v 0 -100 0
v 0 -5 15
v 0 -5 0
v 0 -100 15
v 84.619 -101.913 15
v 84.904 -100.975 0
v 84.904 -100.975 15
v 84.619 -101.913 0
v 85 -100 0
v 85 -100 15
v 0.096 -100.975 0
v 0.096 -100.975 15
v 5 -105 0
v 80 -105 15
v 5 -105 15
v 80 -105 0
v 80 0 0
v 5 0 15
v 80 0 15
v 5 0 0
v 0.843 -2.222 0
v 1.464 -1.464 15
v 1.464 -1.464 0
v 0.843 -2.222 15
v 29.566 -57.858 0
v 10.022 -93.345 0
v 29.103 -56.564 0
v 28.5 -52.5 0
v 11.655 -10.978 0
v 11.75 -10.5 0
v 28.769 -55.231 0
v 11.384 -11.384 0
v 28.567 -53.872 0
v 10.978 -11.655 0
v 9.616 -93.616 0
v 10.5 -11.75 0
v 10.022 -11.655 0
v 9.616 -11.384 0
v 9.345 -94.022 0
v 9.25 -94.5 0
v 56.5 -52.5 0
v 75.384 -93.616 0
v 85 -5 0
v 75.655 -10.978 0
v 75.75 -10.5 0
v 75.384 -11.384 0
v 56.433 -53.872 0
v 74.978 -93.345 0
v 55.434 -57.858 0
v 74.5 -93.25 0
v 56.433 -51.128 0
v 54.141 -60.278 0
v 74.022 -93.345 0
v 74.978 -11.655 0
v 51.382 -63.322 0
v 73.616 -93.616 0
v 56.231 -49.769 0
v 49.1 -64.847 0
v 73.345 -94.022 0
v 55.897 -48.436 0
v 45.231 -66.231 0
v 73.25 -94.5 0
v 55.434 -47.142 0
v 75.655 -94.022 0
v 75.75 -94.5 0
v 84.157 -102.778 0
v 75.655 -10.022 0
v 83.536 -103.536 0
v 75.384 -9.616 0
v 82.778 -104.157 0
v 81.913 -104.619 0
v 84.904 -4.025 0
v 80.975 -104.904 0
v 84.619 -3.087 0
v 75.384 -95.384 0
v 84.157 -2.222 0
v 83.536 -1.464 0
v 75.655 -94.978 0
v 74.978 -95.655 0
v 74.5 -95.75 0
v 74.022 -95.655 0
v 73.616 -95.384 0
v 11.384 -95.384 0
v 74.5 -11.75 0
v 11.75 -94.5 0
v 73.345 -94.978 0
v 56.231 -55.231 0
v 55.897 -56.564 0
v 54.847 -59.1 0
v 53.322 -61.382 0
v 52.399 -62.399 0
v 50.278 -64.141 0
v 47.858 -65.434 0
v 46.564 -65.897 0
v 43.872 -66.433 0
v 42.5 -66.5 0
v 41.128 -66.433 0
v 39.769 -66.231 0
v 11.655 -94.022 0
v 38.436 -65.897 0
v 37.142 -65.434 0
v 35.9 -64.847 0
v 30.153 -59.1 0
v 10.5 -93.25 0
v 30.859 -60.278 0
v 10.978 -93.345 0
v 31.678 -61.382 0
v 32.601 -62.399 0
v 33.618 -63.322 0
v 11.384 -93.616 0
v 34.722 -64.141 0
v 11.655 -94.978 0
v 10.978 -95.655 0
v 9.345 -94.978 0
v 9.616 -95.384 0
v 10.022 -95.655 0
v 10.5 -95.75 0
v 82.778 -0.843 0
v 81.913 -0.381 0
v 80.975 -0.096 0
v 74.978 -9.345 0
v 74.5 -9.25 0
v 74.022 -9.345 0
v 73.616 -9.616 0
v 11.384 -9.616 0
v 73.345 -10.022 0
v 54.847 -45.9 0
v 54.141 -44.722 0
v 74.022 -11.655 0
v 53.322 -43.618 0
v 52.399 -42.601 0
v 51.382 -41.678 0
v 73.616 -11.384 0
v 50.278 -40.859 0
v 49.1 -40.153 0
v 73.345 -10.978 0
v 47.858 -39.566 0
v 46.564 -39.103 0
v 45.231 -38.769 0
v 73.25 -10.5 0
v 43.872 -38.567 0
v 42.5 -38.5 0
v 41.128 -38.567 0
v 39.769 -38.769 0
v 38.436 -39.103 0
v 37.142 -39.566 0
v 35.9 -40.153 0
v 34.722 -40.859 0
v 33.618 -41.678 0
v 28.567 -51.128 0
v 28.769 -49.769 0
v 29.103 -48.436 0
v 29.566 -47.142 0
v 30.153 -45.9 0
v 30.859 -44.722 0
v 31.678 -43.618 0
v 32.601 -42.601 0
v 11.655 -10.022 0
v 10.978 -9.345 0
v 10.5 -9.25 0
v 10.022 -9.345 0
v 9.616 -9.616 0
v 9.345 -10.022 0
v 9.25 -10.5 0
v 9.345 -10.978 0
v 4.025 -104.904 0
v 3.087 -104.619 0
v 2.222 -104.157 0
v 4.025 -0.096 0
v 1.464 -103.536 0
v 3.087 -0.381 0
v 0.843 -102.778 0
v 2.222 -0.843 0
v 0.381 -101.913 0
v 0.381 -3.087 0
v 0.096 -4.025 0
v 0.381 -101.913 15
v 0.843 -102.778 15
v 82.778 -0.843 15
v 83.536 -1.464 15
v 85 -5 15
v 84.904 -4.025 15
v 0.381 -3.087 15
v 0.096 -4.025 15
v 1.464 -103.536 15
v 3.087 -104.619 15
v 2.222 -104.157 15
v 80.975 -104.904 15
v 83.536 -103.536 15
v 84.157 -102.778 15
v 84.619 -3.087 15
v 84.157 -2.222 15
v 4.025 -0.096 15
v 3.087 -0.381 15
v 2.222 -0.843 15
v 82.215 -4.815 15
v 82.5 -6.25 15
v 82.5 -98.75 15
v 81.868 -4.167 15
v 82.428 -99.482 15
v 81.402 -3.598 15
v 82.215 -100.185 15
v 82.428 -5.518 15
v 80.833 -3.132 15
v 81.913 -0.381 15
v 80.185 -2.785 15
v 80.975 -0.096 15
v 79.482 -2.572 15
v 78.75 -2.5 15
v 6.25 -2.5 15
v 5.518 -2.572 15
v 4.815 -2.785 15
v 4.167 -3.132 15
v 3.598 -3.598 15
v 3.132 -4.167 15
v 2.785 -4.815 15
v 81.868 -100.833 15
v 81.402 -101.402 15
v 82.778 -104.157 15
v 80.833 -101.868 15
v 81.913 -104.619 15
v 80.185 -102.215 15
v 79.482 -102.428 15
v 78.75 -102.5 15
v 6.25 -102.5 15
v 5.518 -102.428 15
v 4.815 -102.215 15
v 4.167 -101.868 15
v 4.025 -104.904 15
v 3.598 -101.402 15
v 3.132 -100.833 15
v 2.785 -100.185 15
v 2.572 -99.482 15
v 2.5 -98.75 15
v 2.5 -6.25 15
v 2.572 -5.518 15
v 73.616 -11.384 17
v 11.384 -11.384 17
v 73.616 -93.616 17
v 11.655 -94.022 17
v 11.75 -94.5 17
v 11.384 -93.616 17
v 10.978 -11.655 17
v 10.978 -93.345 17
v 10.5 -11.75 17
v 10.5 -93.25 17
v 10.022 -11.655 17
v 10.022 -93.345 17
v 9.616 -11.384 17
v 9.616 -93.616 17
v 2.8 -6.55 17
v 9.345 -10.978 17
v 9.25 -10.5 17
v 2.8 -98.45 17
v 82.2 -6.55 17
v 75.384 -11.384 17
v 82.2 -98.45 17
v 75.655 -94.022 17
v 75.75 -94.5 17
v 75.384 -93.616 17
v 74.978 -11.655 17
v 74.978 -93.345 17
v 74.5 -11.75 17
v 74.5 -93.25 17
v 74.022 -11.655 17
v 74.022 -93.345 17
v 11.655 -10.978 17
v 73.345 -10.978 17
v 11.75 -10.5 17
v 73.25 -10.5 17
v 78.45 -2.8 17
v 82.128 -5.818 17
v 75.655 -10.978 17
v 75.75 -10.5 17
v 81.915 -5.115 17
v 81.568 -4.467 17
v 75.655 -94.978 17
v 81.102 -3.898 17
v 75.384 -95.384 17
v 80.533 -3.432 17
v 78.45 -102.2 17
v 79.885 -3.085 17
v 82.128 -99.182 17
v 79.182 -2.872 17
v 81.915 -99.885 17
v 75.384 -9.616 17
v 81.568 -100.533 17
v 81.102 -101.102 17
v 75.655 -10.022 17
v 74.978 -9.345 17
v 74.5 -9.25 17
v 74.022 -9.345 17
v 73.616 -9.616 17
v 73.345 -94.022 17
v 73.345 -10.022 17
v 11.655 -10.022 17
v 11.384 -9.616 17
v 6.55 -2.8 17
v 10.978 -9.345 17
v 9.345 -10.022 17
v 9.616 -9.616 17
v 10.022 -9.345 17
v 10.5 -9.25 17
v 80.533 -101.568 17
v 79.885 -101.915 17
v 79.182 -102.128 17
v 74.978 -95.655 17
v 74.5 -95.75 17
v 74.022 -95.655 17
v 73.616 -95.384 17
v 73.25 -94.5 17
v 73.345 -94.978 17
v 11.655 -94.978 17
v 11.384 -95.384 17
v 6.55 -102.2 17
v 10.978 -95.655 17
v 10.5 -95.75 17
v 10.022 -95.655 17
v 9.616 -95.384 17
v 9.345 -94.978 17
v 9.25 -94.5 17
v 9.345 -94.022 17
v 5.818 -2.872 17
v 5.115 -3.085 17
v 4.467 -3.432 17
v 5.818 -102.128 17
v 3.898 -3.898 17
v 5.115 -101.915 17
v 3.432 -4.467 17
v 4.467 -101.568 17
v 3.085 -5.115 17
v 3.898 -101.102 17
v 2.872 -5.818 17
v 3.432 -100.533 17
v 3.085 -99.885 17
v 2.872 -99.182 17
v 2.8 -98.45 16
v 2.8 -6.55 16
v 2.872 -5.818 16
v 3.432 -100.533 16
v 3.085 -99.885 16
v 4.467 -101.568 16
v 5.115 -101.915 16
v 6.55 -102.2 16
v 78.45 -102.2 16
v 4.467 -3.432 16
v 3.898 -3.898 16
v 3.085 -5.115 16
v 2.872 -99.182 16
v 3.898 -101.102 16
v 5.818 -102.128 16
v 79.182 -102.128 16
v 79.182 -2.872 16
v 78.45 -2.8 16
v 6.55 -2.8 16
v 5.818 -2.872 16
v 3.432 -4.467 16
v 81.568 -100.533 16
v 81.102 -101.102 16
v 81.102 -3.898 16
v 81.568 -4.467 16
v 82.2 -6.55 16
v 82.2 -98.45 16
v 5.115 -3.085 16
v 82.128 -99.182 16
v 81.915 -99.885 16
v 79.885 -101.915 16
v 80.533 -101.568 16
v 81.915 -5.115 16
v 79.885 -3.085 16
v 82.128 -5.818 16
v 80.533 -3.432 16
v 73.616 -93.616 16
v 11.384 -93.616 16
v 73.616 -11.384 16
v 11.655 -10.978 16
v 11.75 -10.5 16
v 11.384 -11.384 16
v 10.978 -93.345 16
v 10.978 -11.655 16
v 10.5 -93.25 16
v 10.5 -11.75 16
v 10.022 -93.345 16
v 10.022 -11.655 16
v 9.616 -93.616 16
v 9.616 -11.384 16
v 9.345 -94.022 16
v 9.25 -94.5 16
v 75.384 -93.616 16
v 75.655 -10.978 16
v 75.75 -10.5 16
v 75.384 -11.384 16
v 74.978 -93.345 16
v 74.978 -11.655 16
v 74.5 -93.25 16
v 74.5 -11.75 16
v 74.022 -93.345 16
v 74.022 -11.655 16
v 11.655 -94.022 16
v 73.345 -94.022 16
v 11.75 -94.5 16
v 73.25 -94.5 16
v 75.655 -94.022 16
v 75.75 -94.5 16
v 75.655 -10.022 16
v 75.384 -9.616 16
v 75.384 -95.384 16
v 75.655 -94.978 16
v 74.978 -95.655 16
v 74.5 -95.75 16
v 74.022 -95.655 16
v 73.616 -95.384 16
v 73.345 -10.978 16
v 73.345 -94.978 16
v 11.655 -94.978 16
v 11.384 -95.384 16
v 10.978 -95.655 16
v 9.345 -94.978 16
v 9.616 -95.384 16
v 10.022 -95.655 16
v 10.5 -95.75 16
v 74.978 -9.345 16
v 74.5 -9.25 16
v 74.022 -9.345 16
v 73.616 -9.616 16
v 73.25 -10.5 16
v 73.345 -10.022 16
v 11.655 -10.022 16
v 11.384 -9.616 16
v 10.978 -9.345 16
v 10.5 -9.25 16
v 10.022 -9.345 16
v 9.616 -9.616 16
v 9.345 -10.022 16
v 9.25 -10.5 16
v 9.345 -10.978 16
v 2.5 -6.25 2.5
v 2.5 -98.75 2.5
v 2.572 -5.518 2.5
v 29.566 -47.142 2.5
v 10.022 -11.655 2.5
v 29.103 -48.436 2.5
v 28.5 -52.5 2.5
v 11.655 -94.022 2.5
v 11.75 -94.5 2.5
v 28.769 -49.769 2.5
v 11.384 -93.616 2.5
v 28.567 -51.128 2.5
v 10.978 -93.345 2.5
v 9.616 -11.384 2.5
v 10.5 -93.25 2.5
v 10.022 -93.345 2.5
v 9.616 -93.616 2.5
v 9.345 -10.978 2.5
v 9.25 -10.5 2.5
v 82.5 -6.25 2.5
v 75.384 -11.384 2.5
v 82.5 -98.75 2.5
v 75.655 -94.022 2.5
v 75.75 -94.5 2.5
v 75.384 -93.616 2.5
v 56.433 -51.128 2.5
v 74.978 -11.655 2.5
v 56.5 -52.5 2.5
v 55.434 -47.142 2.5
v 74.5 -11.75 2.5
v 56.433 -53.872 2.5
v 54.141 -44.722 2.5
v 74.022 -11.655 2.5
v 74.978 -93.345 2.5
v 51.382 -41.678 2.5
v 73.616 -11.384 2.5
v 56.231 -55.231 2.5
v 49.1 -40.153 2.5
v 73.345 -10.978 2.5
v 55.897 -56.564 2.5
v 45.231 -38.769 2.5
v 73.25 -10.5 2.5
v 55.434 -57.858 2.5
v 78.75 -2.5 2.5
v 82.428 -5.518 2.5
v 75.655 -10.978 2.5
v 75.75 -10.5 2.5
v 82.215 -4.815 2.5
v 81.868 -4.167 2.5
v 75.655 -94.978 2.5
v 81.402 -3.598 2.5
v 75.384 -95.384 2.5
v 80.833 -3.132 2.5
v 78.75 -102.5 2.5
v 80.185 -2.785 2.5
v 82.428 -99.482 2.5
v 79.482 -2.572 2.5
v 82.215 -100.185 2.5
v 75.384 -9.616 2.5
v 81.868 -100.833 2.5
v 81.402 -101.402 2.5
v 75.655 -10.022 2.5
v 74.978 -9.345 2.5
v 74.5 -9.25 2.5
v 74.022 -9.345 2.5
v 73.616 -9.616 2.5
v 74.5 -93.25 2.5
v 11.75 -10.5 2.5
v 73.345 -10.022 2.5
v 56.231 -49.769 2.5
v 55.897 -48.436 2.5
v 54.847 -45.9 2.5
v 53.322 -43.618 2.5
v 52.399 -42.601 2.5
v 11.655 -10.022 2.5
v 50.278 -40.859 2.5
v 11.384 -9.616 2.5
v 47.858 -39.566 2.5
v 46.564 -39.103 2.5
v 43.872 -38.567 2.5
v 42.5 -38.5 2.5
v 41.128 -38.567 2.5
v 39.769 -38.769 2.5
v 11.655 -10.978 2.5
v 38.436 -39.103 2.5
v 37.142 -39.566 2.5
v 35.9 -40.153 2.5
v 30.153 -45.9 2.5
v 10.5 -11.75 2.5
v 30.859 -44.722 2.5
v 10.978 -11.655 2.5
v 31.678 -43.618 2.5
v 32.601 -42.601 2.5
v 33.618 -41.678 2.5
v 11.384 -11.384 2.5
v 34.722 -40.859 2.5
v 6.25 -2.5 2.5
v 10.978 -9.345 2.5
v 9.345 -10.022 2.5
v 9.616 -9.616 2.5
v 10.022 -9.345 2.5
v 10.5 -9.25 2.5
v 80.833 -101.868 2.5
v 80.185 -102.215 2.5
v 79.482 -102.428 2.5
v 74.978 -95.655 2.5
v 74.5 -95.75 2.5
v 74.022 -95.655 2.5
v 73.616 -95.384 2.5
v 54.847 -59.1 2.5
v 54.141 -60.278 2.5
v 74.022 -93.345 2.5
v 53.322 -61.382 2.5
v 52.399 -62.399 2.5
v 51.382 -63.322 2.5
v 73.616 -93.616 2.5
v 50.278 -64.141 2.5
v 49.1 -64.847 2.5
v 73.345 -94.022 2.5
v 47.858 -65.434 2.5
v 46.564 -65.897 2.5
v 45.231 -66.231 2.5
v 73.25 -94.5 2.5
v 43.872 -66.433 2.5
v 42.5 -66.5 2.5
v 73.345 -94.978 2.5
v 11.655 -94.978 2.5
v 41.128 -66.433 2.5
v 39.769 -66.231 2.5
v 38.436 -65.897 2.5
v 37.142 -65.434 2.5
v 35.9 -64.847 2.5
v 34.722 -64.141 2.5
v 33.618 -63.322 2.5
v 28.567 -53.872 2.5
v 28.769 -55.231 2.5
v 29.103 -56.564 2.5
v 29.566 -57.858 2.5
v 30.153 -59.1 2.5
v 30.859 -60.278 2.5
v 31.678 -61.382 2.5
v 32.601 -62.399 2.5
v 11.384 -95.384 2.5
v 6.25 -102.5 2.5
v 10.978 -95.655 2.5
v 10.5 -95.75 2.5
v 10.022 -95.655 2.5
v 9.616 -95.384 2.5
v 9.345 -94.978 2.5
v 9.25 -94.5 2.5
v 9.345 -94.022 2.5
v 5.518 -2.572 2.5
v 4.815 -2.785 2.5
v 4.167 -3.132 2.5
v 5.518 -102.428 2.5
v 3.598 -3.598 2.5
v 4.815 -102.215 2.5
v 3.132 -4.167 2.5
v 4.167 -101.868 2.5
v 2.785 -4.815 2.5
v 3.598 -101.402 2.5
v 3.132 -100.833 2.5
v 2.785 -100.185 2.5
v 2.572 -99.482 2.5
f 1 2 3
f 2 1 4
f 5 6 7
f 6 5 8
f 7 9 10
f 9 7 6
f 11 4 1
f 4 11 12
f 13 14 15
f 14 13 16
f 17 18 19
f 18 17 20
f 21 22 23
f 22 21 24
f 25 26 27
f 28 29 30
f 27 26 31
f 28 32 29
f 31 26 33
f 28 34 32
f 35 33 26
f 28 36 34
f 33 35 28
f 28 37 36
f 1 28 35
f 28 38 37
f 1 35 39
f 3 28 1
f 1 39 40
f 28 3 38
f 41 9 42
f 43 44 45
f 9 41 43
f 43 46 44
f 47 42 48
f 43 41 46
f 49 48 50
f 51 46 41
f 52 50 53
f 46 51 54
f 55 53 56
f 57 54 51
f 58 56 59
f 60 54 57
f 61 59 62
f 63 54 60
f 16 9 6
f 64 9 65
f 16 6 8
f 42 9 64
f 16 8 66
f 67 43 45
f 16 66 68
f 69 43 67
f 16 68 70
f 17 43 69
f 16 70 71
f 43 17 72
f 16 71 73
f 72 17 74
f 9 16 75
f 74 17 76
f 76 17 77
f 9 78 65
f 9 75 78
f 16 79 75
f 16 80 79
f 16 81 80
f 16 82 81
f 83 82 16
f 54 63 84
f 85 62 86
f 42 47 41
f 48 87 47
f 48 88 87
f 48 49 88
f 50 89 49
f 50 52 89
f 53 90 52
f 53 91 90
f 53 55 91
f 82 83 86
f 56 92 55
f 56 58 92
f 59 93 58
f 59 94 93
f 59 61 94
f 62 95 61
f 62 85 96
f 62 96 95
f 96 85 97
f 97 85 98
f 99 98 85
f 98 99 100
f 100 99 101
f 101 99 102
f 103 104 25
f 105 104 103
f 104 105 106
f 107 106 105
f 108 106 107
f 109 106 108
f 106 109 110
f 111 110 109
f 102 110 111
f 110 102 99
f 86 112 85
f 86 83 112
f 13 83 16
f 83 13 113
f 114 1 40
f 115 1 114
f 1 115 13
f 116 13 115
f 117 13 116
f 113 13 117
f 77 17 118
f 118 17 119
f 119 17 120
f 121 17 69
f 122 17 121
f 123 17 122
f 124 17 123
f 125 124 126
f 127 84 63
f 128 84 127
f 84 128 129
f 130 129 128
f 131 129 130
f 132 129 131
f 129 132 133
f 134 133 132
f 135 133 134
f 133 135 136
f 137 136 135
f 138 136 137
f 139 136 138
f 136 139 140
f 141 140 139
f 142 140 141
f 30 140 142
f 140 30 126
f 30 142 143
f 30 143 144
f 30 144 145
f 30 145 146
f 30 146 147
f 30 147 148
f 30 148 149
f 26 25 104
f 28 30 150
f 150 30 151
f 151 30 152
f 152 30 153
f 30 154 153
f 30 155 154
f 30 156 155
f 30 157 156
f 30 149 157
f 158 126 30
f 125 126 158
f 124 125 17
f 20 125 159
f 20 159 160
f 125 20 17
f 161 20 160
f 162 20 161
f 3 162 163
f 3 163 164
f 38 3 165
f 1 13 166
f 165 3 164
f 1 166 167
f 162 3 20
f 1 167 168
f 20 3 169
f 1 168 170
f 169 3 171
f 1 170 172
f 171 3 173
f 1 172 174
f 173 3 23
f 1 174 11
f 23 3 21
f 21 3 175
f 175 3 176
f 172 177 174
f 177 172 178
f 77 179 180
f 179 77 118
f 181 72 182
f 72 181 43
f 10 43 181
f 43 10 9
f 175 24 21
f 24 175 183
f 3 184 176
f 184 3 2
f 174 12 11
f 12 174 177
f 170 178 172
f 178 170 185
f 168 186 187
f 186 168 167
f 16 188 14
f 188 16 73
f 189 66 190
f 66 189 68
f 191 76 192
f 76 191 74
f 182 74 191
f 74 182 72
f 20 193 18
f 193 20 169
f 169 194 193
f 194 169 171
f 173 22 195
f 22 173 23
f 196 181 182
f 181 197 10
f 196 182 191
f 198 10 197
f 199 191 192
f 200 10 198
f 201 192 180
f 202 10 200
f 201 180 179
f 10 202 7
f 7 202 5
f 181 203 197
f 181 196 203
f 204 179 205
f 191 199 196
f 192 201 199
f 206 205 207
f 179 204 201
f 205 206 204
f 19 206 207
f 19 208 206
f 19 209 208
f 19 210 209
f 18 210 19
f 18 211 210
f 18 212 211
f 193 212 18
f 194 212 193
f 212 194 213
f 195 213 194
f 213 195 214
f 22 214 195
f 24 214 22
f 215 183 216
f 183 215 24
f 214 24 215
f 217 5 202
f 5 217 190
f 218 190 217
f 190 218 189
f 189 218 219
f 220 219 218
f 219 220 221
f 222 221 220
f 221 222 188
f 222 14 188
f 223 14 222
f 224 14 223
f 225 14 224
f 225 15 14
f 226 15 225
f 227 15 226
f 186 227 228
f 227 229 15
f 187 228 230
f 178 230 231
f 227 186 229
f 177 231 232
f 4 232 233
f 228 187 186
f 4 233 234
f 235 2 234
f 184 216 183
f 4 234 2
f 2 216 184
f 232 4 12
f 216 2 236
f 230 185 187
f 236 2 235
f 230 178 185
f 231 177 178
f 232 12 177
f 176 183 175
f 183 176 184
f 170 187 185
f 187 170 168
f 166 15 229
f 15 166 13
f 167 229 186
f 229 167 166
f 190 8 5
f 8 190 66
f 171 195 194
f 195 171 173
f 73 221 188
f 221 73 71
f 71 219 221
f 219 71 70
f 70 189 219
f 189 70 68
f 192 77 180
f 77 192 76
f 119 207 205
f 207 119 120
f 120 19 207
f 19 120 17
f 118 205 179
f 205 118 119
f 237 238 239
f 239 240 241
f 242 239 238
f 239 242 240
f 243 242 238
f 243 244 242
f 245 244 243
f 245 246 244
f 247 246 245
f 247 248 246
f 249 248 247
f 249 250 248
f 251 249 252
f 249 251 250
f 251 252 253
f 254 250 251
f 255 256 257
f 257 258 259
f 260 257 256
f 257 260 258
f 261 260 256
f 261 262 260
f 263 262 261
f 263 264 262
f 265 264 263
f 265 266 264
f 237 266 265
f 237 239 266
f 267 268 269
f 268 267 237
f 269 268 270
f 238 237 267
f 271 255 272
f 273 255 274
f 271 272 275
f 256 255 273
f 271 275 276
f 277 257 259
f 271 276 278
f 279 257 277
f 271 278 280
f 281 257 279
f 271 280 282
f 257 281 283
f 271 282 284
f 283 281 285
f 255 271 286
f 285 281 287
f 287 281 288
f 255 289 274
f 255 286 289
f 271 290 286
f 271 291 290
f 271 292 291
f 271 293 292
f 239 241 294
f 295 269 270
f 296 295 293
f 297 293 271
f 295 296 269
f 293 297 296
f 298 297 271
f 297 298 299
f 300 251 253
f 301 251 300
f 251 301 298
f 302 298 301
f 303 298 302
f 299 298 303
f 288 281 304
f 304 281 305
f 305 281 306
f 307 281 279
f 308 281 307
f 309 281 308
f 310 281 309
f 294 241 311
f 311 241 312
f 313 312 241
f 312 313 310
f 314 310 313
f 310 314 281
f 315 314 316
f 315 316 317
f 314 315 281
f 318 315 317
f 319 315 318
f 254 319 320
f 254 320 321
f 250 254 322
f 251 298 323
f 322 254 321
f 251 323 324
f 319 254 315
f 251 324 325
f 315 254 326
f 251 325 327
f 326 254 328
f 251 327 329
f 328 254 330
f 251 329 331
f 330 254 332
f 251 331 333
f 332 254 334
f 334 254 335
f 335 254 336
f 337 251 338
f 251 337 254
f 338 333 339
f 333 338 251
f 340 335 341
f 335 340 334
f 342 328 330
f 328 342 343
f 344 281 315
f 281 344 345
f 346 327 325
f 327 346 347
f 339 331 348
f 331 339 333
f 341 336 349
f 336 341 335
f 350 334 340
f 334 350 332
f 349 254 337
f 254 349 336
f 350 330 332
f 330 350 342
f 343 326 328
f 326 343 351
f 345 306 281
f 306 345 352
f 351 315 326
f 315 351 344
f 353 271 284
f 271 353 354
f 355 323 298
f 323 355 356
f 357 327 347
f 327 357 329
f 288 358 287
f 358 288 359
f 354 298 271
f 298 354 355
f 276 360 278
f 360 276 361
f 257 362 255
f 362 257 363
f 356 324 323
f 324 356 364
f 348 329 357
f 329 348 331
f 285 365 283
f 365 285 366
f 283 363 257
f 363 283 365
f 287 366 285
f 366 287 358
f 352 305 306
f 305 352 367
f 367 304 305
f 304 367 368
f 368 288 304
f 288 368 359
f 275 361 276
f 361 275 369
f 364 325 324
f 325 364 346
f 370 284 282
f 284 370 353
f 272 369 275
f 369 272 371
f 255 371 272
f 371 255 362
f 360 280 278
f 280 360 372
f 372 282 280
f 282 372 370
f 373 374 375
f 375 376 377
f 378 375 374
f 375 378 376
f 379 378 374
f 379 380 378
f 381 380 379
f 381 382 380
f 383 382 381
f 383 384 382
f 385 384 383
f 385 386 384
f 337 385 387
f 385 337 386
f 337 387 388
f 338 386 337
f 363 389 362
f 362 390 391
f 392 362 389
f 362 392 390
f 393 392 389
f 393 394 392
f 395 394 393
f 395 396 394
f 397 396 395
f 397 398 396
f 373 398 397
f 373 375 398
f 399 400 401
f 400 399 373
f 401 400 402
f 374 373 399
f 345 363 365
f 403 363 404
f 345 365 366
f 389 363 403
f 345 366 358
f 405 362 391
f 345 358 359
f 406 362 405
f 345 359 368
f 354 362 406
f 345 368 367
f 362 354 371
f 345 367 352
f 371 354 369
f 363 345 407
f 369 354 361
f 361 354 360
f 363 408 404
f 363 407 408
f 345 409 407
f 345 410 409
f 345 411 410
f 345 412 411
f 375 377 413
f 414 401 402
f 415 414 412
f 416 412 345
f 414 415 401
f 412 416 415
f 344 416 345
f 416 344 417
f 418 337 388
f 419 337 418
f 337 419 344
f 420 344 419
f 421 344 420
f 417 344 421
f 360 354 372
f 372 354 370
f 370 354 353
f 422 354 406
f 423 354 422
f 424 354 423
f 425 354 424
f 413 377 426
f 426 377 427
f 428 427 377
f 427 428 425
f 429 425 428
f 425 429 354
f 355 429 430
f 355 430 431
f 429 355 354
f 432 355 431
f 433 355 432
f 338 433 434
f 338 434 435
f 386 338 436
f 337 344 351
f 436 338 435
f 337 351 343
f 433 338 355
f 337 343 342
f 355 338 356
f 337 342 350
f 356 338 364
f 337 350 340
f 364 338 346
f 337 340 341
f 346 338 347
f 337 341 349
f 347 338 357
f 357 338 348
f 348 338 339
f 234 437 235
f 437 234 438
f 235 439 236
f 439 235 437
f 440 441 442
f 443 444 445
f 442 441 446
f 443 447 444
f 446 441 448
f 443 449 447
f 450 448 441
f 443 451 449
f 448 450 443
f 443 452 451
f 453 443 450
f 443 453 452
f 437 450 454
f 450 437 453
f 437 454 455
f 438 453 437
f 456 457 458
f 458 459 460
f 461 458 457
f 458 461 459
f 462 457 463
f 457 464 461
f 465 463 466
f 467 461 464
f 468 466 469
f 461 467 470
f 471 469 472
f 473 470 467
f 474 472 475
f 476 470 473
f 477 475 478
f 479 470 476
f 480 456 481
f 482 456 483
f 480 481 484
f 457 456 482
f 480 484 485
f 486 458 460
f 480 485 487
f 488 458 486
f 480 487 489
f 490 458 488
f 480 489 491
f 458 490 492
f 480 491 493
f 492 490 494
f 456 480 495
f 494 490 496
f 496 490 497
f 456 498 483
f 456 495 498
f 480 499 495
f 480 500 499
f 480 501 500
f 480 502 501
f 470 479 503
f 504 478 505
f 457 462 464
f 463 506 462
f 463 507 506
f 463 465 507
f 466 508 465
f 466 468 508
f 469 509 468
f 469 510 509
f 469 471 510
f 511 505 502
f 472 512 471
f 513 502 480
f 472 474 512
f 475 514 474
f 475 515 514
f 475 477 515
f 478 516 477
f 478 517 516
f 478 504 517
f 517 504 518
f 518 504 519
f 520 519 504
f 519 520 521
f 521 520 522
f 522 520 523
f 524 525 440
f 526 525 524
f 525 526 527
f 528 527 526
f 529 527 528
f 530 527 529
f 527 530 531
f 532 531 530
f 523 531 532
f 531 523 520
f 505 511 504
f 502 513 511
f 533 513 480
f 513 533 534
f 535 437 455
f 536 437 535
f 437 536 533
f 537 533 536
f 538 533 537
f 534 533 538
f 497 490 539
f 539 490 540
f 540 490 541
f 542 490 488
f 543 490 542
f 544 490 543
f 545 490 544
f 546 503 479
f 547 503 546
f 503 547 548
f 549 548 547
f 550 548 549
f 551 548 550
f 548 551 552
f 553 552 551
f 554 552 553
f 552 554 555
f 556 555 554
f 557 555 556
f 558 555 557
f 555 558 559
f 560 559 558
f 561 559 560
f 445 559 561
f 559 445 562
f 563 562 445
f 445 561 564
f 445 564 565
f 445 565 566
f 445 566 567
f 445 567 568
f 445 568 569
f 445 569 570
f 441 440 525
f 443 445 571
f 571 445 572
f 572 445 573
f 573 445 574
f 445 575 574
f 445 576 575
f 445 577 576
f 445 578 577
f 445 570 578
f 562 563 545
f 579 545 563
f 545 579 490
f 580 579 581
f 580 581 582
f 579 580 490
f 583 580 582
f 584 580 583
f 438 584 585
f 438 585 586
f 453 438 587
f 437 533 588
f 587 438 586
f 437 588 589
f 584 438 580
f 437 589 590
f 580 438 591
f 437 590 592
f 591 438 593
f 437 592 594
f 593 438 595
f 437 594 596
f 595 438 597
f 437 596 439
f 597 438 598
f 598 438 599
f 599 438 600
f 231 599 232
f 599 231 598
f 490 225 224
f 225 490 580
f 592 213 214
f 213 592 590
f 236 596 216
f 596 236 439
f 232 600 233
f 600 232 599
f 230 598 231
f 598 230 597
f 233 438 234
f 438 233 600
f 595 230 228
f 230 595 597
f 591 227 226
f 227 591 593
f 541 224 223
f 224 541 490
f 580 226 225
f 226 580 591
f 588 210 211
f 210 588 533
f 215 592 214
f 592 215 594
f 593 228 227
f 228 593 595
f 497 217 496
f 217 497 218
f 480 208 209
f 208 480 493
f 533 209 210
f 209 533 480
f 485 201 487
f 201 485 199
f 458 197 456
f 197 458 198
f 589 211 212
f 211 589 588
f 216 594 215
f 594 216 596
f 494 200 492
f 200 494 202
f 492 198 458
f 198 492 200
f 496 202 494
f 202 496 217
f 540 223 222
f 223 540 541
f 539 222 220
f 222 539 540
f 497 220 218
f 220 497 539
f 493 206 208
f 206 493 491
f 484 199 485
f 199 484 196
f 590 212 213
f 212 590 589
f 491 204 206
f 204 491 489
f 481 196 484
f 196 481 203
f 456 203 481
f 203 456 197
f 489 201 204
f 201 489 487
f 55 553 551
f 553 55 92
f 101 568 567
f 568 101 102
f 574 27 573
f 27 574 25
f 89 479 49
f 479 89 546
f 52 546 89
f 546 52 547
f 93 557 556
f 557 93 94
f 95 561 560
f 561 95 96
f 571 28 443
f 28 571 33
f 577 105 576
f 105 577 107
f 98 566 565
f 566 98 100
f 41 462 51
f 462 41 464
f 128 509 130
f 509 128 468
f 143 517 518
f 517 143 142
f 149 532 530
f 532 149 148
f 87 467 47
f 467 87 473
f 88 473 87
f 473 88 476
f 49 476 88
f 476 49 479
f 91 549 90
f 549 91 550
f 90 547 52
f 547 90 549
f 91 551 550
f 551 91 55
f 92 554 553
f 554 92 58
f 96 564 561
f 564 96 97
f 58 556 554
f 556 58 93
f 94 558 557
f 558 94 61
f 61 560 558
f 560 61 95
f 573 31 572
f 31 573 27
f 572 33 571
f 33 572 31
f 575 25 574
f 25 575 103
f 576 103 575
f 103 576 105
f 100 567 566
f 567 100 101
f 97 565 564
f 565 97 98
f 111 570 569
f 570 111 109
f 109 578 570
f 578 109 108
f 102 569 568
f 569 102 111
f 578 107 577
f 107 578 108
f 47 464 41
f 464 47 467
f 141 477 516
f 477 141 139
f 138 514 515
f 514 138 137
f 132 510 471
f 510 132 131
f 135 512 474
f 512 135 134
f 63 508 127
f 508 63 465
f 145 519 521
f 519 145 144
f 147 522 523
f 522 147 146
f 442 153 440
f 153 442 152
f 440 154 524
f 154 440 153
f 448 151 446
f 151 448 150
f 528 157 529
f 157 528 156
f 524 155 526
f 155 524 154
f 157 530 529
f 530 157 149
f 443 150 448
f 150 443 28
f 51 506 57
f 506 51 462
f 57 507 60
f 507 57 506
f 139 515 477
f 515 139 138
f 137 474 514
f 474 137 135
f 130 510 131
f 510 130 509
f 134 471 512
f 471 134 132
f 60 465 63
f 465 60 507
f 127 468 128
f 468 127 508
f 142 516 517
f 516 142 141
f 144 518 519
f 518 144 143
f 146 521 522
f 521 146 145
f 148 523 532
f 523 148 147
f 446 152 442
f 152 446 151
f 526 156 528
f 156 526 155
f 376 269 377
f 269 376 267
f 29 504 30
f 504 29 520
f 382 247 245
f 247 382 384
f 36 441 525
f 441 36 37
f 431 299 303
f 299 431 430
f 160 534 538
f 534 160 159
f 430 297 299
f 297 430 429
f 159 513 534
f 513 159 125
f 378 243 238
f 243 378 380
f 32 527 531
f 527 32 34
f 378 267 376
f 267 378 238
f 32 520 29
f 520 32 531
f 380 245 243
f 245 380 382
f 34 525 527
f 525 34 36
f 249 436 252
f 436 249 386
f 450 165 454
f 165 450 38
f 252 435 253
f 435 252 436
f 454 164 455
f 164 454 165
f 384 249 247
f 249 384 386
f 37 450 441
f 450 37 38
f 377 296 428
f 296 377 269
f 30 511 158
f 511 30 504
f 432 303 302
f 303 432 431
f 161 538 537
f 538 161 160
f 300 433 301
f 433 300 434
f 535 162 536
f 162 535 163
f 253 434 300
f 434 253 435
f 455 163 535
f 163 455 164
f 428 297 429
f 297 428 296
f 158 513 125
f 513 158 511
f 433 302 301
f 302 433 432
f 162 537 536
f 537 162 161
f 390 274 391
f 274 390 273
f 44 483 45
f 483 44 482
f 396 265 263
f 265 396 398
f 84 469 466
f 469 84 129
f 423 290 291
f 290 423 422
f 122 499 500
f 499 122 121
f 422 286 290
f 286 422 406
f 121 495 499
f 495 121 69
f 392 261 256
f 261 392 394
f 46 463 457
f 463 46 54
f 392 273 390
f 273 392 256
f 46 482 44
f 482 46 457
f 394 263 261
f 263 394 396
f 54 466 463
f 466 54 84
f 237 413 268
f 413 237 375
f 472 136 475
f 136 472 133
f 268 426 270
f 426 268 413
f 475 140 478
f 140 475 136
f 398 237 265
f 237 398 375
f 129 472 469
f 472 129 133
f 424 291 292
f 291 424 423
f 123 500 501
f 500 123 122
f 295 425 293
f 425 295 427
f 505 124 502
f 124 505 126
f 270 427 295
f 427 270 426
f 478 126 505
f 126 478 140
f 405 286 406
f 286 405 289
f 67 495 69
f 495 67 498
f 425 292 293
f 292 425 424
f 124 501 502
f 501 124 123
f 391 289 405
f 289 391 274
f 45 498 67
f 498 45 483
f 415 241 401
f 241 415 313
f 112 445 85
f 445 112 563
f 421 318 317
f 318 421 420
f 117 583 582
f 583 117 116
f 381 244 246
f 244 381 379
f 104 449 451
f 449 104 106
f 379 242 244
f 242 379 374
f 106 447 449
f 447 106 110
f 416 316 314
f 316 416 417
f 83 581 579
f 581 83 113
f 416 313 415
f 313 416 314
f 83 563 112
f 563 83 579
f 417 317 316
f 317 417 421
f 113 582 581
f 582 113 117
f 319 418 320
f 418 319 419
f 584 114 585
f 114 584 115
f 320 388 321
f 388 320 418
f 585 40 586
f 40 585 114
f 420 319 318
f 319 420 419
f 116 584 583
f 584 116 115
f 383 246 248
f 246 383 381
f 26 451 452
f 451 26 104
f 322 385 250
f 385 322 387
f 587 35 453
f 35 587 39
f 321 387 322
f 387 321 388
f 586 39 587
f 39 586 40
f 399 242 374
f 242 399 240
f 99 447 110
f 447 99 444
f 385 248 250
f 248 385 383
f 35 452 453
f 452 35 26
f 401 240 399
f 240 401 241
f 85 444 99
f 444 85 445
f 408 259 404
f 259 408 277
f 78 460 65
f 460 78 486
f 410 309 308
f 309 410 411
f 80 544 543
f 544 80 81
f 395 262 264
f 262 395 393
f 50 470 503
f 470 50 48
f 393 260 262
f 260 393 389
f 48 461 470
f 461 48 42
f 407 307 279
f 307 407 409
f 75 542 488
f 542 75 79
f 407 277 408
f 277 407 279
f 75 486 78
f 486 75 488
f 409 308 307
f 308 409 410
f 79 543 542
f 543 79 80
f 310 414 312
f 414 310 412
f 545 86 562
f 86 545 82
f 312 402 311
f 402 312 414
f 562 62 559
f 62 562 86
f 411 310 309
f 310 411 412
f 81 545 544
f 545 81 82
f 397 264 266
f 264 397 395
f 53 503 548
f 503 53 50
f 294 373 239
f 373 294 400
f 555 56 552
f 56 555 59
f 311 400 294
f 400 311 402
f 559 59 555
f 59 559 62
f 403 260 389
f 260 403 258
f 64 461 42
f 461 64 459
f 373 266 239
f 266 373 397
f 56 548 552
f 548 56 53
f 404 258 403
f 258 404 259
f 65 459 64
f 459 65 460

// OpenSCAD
// =============================================================================
// Classroom Buzzer Button Housing - TOP HALF ONLY
// Parametric OpenSCAD Design for ABS 3D Printing
// =============================================================================
//
// This file renders ONLY the top/lid portion for easy STL export.
// Open in OpenSCAD, press F6 to render, then Export as STL.
//
// ABS Print Settings:
//   - Nozzle: 230-250°C
//   - Bed: 90-110°C
//   - Enclosed printer recommended
//   - Infill: 20-30%
//   - Layer height: 0.2mm
//
// =============================================================================

// -----------------------------------------------------------------------------
// MAIN ENCLOSURE PARAMETERS
// -----------------------------------------------------------------------------

// Overall box dimensions (internal)
box_width = 80;           // X dimension
box_depth = 100;          // Y dimension
box_height = 45;          // Z dimension (not including button protrusion)

// Wall thickness
wall = 2.5;               // Wall thickness for ABS durability

// Corner rounding
corner_radius = 5;        // Rounded corners

// Lid parameters
lid_height = 15;          // How tall the top portion is
lid_lip = 2;              // Overlap lip for top/bottom fit
lid_tolerance = 0.3;      // Gap for easy fit

// -----------------------------------------------------------------------------
// COMPONENT DIMENSIONS
// -----------------------------------------------------------------------------

// Arcade Button (typically 28mm mounting hole)
button_hole_dia = 28;     // Mounting hole diameter

// Note: OLED and rocker switch are in the bottom half only
// This file just needs matching overall dimensions for proper fit

// -----------------------------------------------------------------------------
// MOUNTING POST PARAMETERS
// -----------------------------------------------------------------------------

post_dia = 6;             // Mounting post diameter
post_hole_dia = 2.5;      // Screw hole diameter (M3)

// -----------------------------------------------------------------------------
// CALCULATED VALUES (don't modify)
// -----------------------------------------------------------------------------

outer_width = box_width + wall * 2;
outer_depth = box_depth + wall * 2;
outer_height = box_height + wall * 2;
bottom_height = outer_height - lid_height;

// -----------------------------------------------------------------------------
// MODULES
// -----------------------------------------------------------------------------

// Rounded box helper
module rounded_box(w, d, h, r) {
    hull() {
        translate([r, r, 0]) cylinder(h=h, r=r, $fn=32);
        translate([w-r, r, 0]) cylinder(h=h, r=r, $fn=32);
        translate([r, d-r, 0]) cylinder(h=h, r=r, $fn=32);
        translate([w-r, d-r, 0]) cylinder(h=h, r=r, $fn=32);
    }
}

// -----------------------------------------------------------------------------
// TOP HALF (LID)
// -----------------------------------------------------------------------------

module top_half() {
    difference() {
        union() {
            // Outer shell
            rounded_box(outer_width, outer_depth, lid_height, corner_radius);

            // Inner lip for fitting onto bottom
            translate([wall + lid_tolerance, wall + lid_tolerance, -lid_lip])
                rounded_box(box_width - lid_tolerance*2, box_depth - lid_tolerance*2,
                           lid_lip, corner_radius - wall/2);
        }

        // Hollow out inside
        translate([wall, wall, -1])
            rounded_box(box_width, box_depth, lid_height - wall + 1, corner_radius - wall/2);

        // --- CUTOUTS ---

        // Arcade button hole (centered on top)
        translate([outer_width/2, outer_depth/2, -1])
            cylinder(h=lid_height + 2, d=button_hole_dia, $fn=64);

        // Screw holes for mounting posts
        post_inset = 8;
        translate([wall + post_inset, wall + post_inset, -lid_lip - 1])
            cylinder(h=lid_height + lid_lip + 2, d=post_hole_dia, $fn=16);
        translate([outer_width - wall - post_inset, wall + post_inset, -lid_lip - 1])
            cylinder(h=lid_height + lid_lip + 2, d=post_hole_dia, $fn=16);
        translate([wall + post_inset, outer_depth - wall - post_inset, -lid_lip - 1])
            cylinder(h=lid_height + lid_lip + 2, d=post_hole_dia, $fn=16);
        translate([outer_width - wall - post_inset, outer_depth - wall - post_inset, -lid_lip - 1])
            cylinder(h=lid_height + lid_lip + 2, d=post_hole_dia, $fn=16);
    }
}

// -----------------------------------------------------------------------------
// RENDER - TOP HALF (flipped for printing)
// -----------------------------------------------------------------------------

// Flipped so flat surface is on print bed
translate([0, 0, lid_height]) rotate([180, 0, 0]) top_half();
